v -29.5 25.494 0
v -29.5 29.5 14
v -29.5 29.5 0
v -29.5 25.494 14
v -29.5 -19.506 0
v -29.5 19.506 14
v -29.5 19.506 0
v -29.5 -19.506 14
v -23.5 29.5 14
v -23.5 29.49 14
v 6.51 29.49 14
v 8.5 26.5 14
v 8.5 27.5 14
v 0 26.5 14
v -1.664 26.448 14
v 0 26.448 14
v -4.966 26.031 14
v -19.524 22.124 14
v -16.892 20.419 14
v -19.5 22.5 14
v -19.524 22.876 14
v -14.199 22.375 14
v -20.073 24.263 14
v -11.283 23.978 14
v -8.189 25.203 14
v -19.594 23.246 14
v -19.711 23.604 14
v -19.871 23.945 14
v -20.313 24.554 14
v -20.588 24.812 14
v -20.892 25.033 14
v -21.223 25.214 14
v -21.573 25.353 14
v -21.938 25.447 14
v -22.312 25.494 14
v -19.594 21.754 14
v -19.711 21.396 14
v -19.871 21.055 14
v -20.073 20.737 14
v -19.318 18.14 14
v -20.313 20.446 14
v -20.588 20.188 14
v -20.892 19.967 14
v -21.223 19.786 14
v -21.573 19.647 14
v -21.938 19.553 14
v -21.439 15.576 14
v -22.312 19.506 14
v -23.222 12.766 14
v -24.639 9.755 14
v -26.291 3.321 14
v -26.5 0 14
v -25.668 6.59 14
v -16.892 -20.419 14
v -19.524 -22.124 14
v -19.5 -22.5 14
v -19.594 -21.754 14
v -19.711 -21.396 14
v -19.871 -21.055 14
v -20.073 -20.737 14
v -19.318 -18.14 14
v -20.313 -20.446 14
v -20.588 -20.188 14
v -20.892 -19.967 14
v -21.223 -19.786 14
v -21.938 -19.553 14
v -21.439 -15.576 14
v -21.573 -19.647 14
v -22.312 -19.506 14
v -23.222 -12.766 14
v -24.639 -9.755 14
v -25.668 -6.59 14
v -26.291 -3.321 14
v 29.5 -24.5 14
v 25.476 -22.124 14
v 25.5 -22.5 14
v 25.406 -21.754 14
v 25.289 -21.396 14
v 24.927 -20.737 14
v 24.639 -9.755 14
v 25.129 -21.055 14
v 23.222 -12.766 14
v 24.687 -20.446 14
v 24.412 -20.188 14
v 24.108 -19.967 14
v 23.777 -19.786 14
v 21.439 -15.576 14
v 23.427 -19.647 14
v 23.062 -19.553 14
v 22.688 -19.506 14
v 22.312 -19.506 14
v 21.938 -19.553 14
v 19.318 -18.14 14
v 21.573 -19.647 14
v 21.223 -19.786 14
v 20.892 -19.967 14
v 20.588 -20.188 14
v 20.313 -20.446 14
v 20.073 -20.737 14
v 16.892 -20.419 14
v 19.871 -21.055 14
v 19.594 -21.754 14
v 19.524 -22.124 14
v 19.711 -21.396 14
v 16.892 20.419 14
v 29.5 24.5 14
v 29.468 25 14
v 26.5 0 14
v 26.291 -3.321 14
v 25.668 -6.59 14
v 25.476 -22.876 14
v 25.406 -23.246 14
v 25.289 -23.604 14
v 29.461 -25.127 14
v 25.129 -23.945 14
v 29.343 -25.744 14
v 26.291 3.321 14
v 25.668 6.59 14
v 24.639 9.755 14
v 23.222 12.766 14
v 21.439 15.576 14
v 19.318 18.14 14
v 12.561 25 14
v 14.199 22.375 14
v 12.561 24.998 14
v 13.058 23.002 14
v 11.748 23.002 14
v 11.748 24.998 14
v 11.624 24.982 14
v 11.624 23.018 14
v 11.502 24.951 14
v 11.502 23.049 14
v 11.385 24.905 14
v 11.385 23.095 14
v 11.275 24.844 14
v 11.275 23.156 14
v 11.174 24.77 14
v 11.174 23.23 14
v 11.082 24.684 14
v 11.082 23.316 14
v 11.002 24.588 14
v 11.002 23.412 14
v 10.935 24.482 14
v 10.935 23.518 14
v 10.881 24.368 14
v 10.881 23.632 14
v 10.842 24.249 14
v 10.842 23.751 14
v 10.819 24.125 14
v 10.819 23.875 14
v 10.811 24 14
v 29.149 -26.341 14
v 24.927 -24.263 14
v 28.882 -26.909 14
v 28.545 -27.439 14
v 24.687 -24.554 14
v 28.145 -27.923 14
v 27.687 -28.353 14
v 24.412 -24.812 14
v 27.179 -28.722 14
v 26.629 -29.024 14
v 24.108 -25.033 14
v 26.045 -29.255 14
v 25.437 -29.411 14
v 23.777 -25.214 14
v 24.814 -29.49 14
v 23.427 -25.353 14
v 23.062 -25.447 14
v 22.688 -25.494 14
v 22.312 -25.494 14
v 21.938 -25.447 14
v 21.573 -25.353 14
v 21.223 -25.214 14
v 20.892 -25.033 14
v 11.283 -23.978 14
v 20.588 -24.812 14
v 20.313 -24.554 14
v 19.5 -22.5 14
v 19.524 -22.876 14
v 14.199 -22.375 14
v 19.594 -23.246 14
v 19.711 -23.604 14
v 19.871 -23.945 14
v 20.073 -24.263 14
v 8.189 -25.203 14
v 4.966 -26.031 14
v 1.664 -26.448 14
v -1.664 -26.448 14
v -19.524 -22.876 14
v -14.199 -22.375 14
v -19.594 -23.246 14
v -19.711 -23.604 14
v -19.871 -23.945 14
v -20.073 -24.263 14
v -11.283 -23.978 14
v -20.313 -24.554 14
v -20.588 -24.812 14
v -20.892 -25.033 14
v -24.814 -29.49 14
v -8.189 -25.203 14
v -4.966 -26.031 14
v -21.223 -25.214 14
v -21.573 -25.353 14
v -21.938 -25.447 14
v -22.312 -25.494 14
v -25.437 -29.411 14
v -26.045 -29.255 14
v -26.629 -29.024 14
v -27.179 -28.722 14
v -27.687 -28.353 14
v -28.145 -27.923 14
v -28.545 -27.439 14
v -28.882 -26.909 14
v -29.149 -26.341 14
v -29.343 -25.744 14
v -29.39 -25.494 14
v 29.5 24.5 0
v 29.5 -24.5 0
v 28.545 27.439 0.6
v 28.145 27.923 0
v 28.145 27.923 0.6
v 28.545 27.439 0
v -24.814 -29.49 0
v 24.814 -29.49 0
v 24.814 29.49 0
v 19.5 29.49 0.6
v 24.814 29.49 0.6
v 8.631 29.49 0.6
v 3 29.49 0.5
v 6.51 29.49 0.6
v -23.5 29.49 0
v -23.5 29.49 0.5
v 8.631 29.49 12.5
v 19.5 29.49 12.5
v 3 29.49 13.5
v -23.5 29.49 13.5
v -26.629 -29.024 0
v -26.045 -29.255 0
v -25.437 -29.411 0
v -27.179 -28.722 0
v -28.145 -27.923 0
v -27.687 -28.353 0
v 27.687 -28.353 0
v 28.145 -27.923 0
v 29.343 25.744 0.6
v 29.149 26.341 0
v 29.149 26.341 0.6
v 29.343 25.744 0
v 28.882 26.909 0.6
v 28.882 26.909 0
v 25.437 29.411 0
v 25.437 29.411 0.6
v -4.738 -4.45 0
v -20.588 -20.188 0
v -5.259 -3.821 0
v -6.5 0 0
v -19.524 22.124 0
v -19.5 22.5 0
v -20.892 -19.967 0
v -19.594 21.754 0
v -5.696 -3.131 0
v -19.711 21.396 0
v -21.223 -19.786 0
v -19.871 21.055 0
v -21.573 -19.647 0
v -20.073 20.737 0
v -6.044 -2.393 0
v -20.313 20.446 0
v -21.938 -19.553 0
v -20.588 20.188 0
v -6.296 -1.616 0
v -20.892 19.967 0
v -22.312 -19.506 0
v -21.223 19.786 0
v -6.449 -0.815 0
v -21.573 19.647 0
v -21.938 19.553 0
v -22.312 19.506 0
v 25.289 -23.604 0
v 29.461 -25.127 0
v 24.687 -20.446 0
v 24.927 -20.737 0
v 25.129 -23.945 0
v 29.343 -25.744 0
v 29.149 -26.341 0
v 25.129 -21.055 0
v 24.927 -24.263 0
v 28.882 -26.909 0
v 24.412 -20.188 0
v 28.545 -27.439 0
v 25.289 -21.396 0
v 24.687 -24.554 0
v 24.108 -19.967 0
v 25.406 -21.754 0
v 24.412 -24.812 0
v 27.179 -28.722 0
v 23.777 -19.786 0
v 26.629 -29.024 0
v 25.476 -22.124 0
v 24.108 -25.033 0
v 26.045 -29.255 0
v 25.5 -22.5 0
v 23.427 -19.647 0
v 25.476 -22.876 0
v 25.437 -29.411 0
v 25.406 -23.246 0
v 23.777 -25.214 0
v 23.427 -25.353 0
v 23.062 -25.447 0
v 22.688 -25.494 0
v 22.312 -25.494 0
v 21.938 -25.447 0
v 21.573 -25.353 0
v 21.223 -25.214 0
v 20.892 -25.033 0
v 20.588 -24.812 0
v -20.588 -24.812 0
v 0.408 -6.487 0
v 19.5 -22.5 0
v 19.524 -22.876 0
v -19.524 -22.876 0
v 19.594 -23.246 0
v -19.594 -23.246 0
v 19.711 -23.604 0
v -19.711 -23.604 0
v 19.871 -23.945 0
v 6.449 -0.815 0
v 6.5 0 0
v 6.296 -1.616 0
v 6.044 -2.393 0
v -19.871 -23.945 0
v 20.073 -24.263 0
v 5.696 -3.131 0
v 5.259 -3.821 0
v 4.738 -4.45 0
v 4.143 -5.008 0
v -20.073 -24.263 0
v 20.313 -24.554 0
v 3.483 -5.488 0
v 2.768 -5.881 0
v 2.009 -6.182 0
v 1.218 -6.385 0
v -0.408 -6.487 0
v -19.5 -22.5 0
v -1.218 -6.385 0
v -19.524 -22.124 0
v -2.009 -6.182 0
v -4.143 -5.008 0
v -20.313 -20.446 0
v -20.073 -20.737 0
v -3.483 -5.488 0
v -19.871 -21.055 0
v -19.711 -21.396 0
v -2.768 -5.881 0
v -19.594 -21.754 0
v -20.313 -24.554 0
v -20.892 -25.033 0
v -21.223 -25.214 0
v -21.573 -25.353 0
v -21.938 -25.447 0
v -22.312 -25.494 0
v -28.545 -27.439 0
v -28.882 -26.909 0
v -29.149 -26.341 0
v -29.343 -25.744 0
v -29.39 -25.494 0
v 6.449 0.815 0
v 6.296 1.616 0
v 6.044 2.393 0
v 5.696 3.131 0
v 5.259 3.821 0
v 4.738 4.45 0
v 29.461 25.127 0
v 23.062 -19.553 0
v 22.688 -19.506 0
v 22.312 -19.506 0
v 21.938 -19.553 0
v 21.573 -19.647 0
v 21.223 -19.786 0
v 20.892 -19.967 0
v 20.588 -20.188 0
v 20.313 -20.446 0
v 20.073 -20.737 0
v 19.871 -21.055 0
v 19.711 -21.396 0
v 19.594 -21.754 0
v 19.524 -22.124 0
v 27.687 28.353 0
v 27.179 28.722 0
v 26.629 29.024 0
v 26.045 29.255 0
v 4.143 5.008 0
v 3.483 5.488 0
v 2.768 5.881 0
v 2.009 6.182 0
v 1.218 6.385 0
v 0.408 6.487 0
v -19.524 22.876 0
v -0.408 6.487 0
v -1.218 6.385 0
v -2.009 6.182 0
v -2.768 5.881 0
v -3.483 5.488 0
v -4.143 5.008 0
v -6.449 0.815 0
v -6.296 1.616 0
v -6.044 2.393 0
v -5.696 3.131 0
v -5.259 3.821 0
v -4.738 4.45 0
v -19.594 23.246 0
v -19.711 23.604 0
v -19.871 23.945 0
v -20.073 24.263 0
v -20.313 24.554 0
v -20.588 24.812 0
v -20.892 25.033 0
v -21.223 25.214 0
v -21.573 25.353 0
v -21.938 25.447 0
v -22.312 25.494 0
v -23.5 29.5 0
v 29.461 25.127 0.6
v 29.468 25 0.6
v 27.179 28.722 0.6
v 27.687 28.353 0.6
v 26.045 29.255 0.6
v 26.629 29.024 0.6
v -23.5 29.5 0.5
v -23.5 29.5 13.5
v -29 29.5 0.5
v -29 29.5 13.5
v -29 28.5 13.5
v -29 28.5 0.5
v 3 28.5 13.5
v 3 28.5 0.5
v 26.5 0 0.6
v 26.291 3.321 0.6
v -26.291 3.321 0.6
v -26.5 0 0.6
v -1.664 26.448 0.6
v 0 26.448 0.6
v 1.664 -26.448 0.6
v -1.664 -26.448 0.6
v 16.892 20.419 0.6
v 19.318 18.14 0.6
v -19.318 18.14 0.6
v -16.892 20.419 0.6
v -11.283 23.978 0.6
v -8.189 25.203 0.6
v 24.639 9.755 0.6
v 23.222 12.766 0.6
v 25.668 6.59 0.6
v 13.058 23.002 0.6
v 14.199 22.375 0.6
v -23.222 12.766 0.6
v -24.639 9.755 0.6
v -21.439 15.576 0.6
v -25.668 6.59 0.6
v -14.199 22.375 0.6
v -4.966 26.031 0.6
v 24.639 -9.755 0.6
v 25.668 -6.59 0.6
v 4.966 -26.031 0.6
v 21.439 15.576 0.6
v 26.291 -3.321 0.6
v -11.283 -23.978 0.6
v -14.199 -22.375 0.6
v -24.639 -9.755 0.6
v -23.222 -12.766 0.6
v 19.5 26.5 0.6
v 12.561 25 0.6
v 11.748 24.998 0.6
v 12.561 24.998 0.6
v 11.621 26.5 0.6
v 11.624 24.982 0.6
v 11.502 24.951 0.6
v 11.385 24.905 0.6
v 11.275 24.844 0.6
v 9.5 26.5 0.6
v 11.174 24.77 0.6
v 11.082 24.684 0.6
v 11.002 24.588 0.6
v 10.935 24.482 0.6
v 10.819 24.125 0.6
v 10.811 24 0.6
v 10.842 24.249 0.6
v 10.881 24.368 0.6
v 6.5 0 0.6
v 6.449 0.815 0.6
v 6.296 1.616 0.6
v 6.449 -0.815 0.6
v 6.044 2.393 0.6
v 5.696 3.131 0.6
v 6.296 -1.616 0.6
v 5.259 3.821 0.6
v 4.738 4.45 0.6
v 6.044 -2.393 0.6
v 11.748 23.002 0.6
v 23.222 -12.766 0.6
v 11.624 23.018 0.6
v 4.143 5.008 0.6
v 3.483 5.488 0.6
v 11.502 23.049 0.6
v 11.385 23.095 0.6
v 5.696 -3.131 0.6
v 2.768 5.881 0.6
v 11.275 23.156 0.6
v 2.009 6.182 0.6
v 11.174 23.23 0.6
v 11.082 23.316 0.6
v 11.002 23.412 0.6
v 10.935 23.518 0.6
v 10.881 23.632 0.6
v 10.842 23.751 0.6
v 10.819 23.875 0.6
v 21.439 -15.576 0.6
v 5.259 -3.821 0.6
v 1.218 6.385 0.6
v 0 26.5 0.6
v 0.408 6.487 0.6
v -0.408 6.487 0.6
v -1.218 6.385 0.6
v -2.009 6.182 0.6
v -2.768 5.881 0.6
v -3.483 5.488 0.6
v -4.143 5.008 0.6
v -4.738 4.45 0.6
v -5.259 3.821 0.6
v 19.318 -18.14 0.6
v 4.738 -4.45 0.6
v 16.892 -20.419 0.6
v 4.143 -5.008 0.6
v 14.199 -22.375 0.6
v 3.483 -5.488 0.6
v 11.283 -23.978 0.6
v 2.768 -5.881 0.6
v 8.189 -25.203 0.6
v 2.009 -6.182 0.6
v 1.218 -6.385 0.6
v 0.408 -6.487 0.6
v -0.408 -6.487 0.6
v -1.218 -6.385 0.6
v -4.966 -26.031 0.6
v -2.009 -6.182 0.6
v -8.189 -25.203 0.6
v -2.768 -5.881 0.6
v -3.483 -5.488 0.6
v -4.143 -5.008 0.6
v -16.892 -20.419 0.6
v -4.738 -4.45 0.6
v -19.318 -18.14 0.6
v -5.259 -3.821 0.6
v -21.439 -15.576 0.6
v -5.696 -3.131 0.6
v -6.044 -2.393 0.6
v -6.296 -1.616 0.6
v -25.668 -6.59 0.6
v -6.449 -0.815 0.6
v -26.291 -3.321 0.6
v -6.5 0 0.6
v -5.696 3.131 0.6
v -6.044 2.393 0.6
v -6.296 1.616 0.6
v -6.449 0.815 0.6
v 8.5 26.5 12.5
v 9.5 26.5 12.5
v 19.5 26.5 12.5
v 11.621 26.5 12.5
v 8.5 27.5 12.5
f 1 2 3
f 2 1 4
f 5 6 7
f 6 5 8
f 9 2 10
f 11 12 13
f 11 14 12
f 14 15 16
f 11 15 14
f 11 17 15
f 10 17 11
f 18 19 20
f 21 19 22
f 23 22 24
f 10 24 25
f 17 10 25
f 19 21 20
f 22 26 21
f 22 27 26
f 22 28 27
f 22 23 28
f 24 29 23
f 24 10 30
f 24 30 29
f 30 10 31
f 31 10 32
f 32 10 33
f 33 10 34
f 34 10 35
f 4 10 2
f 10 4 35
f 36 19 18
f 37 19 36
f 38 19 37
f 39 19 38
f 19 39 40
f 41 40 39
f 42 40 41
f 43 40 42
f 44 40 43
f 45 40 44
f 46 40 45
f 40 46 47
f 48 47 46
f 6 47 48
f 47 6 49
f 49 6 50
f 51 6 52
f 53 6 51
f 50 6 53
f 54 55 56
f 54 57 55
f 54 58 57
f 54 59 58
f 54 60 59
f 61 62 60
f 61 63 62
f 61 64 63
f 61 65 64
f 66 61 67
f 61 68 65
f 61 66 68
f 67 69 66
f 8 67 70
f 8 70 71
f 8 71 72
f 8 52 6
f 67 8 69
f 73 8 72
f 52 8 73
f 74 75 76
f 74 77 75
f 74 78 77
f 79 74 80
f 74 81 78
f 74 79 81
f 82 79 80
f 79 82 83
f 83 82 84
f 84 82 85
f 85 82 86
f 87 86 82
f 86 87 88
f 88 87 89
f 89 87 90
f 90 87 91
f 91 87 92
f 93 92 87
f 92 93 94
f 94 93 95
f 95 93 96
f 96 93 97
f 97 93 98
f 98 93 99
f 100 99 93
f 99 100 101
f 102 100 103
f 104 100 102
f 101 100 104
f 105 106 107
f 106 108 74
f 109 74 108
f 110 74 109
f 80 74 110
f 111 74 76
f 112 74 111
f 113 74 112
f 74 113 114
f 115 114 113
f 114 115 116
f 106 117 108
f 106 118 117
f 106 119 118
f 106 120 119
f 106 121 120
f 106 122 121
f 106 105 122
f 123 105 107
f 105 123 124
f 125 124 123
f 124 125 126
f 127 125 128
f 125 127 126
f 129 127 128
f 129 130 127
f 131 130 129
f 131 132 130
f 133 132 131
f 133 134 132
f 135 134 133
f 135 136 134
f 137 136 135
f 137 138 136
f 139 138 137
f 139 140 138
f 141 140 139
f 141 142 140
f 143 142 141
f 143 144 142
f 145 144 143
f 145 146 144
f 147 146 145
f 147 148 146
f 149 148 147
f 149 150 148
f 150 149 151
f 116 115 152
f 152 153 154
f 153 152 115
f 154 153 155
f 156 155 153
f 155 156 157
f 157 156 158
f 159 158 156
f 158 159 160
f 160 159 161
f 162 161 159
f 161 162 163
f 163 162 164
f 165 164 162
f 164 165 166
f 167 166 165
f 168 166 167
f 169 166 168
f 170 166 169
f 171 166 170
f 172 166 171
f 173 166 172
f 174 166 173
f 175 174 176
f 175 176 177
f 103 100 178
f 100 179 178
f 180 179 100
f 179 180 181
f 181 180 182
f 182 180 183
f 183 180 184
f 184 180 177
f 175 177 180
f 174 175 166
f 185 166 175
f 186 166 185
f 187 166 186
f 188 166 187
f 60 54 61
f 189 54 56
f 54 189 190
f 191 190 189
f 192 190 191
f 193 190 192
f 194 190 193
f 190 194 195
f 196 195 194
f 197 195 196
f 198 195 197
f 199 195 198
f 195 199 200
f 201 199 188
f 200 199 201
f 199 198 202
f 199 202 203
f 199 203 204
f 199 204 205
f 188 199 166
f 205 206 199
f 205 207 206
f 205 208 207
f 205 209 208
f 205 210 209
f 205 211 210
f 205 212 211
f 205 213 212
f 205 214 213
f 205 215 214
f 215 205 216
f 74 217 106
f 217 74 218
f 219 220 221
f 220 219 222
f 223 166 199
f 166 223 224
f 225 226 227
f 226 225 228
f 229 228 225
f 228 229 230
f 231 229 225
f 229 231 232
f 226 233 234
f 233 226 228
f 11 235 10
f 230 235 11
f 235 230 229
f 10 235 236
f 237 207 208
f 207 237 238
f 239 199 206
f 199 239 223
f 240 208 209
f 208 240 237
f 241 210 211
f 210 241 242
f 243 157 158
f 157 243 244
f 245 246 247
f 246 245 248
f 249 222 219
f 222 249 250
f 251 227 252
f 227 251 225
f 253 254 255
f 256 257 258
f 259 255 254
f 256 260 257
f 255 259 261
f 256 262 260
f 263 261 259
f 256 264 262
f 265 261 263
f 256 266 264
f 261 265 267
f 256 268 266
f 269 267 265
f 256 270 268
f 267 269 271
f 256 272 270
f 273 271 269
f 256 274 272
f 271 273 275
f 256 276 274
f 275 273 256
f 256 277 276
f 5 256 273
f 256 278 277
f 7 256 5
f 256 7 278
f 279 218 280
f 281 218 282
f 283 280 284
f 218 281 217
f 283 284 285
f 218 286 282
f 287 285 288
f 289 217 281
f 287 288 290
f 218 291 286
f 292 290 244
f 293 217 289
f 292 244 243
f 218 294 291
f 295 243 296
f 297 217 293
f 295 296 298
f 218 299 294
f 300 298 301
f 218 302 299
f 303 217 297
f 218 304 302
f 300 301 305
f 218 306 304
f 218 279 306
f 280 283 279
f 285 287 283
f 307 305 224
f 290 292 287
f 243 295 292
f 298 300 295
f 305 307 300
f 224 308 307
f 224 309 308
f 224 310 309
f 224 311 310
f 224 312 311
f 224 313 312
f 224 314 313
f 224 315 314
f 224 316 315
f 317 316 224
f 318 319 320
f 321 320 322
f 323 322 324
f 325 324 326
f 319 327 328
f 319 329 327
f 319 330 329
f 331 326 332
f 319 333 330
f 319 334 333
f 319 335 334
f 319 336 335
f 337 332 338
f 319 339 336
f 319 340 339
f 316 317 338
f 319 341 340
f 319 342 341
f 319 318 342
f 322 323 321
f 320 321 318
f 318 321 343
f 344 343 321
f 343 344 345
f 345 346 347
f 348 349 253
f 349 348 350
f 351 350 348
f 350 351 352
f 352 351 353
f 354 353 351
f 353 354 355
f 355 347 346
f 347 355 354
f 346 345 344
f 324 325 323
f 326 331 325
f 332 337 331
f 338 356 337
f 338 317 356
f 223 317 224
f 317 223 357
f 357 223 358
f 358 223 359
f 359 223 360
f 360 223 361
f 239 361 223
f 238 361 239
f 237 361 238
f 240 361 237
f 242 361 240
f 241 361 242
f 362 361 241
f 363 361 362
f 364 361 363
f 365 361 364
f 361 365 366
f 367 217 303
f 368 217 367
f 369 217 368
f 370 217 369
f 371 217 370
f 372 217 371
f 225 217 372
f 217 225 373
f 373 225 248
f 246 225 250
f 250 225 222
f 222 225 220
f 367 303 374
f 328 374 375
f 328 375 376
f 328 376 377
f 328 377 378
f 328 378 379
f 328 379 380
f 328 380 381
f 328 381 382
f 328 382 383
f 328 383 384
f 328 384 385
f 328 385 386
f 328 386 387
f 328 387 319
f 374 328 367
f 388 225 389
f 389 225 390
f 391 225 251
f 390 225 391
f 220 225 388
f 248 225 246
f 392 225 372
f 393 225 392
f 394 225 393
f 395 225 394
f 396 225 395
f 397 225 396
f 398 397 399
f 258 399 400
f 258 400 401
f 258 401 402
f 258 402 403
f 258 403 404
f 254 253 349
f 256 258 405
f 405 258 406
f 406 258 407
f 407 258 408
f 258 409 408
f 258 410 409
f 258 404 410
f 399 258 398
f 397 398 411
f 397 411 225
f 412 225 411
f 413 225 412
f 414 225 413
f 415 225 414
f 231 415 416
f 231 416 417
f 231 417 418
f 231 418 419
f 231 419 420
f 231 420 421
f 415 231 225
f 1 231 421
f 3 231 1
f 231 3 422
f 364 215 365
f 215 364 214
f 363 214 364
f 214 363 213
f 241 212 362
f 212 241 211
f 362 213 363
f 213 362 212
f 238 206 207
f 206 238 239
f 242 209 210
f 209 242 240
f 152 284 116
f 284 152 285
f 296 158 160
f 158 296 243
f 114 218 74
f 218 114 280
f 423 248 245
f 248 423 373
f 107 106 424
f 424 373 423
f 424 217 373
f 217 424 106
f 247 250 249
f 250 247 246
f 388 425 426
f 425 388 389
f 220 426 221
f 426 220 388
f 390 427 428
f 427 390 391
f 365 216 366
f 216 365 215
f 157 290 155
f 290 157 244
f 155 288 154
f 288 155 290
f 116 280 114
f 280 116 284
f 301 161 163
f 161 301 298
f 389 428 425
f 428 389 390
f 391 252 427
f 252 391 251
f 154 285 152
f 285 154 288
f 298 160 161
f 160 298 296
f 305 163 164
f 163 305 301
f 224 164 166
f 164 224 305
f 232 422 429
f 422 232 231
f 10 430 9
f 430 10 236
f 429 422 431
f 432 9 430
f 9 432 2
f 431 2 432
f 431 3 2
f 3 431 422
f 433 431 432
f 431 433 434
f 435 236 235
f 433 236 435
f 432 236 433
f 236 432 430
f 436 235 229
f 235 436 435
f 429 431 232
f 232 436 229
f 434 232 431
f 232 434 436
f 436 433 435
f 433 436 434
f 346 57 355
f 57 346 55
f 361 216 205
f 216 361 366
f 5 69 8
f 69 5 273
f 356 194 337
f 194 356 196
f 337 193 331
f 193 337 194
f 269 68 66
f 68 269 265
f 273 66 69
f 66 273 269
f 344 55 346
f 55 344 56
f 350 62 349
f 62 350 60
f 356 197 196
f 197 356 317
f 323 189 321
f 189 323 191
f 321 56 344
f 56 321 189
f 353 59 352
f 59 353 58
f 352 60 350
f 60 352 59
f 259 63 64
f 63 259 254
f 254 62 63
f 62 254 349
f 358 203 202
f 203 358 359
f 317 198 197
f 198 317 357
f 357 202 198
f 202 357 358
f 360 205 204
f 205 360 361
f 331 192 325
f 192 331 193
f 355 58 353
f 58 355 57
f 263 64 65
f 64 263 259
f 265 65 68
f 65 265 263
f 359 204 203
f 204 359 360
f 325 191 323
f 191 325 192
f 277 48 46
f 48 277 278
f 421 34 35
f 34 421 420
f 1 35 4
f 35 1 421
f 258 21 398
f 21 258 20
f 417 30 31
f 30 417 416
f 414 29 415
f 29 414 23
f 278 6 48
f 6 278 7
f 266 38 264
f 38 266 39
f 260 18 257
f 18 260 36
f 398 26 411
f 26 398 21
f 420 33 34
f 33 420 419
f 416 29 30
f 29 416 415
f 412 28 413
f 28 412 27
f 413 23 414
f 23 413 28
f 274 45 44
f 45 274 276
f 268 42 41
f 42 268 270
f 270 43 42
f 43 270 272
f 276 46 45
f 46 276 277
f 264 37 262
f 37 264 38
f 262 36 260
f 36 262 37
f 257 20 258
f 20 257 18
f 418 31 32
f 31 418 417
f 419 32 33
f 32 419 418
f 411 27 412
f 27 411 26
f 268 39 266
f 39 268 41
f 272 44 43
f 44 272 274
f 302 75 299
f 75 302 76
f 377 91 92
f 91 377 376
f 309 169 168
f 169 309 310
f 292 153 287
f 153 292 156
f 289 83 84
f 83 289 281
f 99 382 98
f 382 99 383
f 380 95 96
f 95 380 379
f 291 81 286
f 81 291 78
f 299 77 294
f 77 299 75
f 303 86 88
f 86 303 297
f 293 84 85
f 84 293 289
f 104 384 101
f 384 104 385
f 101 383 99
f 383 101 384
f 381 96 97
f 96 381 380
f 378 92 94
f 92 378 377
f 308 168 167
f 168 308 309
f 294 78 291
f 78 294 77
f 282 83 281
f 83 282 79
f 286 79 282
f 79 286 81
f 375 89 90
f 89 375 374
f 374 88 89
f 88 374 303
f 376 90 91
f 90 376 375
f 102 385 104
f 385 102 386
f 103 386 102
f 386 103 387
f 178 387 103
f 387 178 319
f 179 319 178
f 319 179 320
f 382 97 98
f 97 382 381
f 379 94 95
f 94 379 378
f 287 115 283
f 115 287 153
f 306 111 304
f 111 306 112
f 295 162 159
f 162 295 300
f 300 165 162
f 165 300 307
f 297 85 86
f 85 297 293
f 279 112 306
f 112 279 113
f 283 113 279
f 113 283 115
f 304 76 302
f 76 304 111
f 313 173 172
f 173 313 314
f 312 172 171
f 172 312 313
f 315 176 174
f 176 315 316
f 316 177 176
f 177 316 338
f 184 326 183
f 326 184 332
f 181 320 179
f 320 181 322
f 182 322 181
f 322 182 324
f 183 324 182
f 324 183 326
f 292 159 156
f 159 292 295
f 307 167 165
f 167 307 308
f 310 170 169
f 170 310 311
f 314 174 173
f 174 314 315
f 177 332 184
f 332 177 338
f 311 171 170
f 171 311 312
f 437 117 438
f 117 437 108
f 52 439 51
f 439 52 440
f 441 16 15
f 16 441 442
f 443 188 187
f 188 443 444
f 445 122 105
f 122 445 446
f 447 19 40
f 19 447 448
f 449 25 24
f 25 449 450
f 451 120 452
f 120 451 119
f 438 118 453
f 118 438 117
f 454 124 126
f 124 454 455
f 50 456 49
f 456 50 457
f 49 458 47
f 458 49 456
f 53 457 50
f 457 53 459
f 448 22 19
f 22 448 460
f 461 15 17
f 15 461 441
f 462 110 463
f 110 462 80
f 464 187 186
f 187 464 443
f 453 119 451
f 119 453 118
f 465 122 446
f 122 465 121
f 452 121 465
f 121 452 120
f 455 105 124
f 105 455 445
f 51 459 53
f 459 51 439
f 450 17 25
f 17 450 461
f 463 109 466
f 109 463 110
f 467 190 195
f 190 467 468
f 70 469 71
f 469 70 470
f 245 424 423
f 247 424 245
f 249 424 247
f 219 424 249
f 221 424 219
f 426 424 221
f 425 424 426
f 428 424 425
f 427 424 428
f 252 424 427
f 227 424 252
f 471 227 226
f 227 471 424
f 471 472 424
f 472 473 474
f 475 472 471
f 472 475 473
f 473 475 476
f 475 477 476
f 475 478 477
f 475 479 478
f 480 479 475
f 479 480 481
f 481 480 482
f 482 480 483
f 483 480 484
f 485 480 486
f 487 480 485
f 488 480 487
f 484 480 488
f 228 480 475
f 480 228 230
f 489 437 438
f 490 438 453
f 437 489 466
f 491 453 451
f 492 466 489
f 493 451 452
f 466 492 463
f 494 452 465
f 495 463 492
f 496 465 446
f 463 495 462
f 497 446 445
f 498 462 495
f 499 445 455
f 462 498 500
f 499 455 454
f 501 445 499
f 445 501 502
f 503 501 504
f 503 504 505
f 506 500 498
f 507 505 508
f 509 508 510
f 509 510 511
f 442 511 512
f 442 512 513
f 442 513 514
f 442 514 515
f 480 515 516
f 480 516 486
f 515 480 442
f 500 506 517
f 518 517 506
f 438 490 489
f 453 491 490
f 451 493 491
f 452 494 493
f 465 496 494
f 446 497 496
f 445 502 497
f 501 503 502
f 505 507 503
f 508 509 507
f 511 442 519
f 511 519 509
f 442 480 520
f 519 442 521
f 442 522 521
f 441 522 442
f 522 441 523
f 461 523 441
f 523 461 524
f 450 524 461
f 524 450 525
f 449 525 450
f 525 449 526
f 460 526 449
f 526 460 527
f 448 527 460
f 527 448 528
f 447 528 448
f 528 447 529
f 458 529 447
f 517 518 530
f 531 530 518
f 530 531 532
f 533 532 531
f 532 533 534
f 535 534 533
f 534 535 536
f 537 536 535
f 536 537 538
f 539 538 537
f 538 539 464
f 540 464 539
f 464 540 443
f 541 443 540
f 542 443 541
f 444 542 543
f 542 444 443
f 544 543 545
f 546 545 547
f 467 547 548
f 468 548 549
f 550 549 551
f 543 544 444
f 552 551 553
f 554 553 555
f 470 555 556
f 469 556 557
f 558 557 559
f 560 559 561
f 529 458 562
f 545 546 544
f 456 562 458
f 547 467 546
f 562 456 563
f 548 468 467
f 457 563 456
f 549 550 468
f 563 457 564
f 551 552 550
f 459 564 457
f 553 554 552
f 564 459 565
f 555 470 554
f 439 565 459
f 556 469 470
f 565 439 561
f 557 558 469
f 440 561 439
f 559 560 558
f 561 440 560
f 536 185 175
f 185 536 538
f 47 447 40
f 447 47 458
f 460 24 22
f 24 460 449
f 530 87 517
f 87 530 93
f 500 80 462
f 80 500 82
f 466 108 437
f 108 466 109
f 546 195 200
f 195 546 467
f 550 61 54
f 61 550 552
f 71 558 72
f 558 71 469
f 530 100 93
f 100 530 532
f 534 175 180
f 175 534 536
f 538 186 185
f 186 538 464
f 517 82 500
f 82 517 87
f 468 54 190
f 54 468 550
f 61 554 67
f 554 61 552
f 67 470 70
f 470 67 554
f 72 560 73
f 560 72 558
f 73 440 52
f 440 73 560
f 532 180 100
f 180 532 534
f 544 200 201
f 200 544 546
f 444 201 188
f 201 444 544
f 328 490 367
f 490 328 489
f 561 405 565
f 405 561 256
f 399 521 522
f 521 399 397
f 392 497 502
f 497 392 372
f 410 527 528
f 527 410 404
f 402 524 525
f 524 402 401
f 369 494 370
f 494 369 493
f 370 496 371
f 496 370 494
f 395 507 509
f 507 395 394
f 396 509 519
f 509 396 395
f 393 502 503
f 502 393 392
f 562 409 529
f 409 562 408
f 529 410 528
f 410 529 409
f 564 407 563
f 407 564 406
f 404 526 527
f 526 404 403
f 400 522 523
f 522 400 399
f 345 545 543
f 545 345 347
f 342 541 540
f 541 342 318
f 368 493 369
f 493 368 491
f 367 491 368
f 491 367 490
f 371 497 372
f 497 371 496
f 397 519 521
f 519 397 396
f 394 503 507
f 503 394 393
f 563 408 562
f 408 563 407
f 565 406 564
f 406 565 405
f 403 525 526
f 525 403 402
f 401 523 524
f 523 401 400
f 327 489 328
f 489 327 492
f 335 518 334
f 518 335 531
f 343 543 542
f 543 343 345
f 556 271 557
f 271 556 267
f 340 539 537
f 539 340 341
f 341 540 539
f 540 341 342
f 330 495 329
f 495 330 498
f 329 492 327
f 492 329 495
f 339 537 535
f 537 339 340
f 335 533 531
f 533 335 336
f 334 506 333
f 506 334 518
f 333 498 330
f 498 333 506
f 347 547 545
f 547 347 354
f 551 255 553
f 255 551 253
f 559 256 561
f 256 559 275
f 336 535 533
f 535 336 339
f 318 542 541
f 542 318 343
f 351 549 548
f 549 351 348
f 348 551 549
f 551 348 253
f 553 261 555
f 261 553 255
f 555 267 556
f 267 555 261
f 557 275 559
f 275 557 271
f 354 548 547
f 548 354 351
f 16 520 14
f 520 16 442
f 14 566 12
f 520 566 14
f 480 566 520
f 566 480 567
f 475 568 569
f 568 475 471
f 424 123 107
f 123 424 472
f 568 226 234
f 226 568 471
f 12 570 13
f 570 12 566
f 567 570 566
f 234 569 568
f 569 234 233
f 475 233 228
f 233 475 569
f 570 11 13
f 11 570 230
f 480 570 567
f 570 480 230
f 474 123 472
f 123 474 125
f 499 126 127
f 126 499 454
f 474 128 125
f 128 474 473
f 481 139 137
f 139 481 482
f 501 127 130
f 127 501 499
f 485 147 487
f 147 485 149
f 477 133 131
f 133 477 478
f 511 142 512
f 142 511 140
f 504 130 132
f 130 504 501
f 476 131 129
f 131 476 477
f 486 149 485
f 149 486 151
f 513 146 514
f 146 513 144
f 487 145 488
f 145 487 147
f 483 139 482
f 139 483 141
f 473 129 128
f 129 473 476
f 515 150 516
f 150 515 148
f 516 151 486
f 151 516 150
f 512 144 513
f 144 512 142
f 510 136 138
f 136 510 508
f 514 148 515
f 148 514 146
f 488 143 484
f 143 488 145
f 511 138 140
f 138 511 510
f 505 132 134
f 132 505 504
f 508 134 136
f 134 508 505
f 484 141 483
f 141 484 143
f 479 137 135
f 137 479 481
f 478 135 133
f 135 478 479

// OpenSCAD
$fn = 50;


union() {
	difference() {
		union() {
			translate(v = [0, 0, 0]) {
				rotate(a = [0, 0, 0]) {
					hull() {
						translate(v = [-24.5000000000, 24.5000000000, 0]) {
							rotate(a = [0, 0, 0]) {
								translate(v = [0, 0, 0]) {
									rotate(a = [0, 0, 0]) {
										cylinder(h = 14, r = 5);
									}
								}
							}
						}
						translate(v = [24.5000000000, 24.5000000000, 0]) {
							rotate(a = [0, 0, 0]) {
								translate(v = [0, 0, 0]) {
									rotate(a = [0, 0, 0]) {
										cylinder(h = 14, r = 5);
									}
								}
							}
						}
						translate(v = [-24.5000000000, -24.5000000000, 0]) {
							rotate(a = [0, 0, 0]) {
								translate(v = [0, 0, 0]) {
									rotate(a = [0, 0, 0]) {
										cylinder(h = 14, r = 5);
									}
								}
							}
						}
						translate(v = [24.5000000000, -24.5000000000, 0]) {
							rotate(a = [0, 0, 0]) {
								translate(v = [0, 0, 0]) {
									rotate(a = [0, 0, 0]) {
										cylinder(h = 14, r = 5);
									}
								}
							}
						}
					}
				}
			}
			translate(v = [-29.5000000000, 23.5000000000, 0]) {
				rotate(a = [0, 0, 0]) {
					cube(size = [6, 6, 14]);
				}
			}
		}
		union() {
			translate(v = [-29.0000000000, 28.5000000000, 0.5000000000]) {
				rotate(a = [0, 0, 0]) {
					cube(size = [30, 1, 13.0000000000]);
				}
			}
			translate(v = [-30.0000000000, -22.5000000000, -125]) {
				rotate(a = [0, 0, 0]) {
					hull() {
						translate(v = [7.5000000000, 0, 0]) {
							rotate(a = [0, 0, 0]) {
								translate(v = [0, 0, 0]) {
									rotate(a = [0, 0, 0]) {
										cylinder(h = 250, r = 3.0000000000);
									}
								}
							}
						}
						translate(v = [-7.5000000000, 0, 0]) {
							rotate(a = [0, 0, 0]) {
								translate(v = [0, 0, 0]) {
									rotate(a = [0, 0, 0]) {
										cylinder(h = 250, r = 3.0000000000);
									}
								}
							}
						}
					}
				}
			}
			translate(v = [-30.0000000000, 22.5000000000, -125]) {
				rotate(a = [0, 0, 0]) {
					hull() {
						translate(v = [7.5000000000, 0, 0]) {
							rotate(a = [0, 0, 0]) {
								translate(v = [0, 0, 0]) {
									rotate(a = [0, 0, 0]) {
										cylinder(h = 250, r = 3.0000000000);
									}
								}
							}
						}
						translate(v = [-7.5000000000, 0, 0]) {
							rotate(a = [0, 0, 0]) {
								translate(v = [0, 0, 0]) {
									rotate(a = [0, 0, 0]) {
										cylinder(h = 250, r = 3.0000000000);
									}
								}
							}
						}
					}
				}
			}
			translate(v = [22.5000000000, -22.5000000000, -125.0000000000]) {
				rotate(a = [0, 0, 0]) {
					cylinder(h = 250, r = 3.0000000000);
				}
			}
			translate(v = [0, 0, 0.6000000000]) {
				rotate(a = [0, 0, 0]) {
					cylinder(h = 16.4000000000, r = 26.5000000000);
				}
			}
			translate(v = [0, 0, -7.0000000000]) {
				rotate(a = [0, 0, 0]) {
					cylinder(h = 14, r = 6.5000000000);
				}
			}
			translate(v = [0.0000000000, 25.0000000000, 0.6000000000]) {
				rotate(a = [0, 0, 0]) {
					cube(size = [29.5000000000, 1.5000000000, 16.4000000000]);
				}
			}
			translate(v = [19.5000000000, 25.0000000000, 0.6000000000]) {
				rotate(a = [0, 0, 0]) {
					cube(size = [10, 4.5000000000, 16.4000000000]);
				}
			}
			translate(v = [8.5000000000, 25.0000000000, 12.5000000000]) {
				rotate(a = [0, 0, 0]) {
					cube(size = [21, 4.5000000000, 1.5000000000]);
				}
			}
			translate(v = [5.7500000000, 30.2500000000, 0.6000000000]) {
				rotate(a = [0, 0, -45]) {
					cube(size = [7.5000000000, 1.5000000000, 16.4000000000]);
				}
			}
			translate(v = [5.0610000000, 23.0000000000, 0.6000000000]) {
				rotate(a = [0, 0, 0]) {
					cube(size = [7.5000000000, 2, 13.4000000000]);
				}
			}
		}
	}
	union() {
		translate(v = [14.3110000000, 24.0000000000, 0]) {
			rotate(a = [0, 0, 0]) {
				hull() {
					translate(v = [2.5000000000, 0, 0]) {
						rotate(a = [0, 0, 0]) {
							translate(v = [0, 0, 0]) {
								rotate(a = [0, 0, 0]) {
									cylinder(h = 14, r = 1.0000000000);
								}
							}
						}
					}
					translate(v = [-2.5000000000, 0, 0]) {
						rotate(a = [0, 0, 0]) {
							translate(v = [0, 0, 0]) {
								rotate(a = [0, 0, 0]) {
									cylinder(h = 14, r = 1.0000000000);
								}
							}
						}
					}
				}
			}
		}
	}
}
